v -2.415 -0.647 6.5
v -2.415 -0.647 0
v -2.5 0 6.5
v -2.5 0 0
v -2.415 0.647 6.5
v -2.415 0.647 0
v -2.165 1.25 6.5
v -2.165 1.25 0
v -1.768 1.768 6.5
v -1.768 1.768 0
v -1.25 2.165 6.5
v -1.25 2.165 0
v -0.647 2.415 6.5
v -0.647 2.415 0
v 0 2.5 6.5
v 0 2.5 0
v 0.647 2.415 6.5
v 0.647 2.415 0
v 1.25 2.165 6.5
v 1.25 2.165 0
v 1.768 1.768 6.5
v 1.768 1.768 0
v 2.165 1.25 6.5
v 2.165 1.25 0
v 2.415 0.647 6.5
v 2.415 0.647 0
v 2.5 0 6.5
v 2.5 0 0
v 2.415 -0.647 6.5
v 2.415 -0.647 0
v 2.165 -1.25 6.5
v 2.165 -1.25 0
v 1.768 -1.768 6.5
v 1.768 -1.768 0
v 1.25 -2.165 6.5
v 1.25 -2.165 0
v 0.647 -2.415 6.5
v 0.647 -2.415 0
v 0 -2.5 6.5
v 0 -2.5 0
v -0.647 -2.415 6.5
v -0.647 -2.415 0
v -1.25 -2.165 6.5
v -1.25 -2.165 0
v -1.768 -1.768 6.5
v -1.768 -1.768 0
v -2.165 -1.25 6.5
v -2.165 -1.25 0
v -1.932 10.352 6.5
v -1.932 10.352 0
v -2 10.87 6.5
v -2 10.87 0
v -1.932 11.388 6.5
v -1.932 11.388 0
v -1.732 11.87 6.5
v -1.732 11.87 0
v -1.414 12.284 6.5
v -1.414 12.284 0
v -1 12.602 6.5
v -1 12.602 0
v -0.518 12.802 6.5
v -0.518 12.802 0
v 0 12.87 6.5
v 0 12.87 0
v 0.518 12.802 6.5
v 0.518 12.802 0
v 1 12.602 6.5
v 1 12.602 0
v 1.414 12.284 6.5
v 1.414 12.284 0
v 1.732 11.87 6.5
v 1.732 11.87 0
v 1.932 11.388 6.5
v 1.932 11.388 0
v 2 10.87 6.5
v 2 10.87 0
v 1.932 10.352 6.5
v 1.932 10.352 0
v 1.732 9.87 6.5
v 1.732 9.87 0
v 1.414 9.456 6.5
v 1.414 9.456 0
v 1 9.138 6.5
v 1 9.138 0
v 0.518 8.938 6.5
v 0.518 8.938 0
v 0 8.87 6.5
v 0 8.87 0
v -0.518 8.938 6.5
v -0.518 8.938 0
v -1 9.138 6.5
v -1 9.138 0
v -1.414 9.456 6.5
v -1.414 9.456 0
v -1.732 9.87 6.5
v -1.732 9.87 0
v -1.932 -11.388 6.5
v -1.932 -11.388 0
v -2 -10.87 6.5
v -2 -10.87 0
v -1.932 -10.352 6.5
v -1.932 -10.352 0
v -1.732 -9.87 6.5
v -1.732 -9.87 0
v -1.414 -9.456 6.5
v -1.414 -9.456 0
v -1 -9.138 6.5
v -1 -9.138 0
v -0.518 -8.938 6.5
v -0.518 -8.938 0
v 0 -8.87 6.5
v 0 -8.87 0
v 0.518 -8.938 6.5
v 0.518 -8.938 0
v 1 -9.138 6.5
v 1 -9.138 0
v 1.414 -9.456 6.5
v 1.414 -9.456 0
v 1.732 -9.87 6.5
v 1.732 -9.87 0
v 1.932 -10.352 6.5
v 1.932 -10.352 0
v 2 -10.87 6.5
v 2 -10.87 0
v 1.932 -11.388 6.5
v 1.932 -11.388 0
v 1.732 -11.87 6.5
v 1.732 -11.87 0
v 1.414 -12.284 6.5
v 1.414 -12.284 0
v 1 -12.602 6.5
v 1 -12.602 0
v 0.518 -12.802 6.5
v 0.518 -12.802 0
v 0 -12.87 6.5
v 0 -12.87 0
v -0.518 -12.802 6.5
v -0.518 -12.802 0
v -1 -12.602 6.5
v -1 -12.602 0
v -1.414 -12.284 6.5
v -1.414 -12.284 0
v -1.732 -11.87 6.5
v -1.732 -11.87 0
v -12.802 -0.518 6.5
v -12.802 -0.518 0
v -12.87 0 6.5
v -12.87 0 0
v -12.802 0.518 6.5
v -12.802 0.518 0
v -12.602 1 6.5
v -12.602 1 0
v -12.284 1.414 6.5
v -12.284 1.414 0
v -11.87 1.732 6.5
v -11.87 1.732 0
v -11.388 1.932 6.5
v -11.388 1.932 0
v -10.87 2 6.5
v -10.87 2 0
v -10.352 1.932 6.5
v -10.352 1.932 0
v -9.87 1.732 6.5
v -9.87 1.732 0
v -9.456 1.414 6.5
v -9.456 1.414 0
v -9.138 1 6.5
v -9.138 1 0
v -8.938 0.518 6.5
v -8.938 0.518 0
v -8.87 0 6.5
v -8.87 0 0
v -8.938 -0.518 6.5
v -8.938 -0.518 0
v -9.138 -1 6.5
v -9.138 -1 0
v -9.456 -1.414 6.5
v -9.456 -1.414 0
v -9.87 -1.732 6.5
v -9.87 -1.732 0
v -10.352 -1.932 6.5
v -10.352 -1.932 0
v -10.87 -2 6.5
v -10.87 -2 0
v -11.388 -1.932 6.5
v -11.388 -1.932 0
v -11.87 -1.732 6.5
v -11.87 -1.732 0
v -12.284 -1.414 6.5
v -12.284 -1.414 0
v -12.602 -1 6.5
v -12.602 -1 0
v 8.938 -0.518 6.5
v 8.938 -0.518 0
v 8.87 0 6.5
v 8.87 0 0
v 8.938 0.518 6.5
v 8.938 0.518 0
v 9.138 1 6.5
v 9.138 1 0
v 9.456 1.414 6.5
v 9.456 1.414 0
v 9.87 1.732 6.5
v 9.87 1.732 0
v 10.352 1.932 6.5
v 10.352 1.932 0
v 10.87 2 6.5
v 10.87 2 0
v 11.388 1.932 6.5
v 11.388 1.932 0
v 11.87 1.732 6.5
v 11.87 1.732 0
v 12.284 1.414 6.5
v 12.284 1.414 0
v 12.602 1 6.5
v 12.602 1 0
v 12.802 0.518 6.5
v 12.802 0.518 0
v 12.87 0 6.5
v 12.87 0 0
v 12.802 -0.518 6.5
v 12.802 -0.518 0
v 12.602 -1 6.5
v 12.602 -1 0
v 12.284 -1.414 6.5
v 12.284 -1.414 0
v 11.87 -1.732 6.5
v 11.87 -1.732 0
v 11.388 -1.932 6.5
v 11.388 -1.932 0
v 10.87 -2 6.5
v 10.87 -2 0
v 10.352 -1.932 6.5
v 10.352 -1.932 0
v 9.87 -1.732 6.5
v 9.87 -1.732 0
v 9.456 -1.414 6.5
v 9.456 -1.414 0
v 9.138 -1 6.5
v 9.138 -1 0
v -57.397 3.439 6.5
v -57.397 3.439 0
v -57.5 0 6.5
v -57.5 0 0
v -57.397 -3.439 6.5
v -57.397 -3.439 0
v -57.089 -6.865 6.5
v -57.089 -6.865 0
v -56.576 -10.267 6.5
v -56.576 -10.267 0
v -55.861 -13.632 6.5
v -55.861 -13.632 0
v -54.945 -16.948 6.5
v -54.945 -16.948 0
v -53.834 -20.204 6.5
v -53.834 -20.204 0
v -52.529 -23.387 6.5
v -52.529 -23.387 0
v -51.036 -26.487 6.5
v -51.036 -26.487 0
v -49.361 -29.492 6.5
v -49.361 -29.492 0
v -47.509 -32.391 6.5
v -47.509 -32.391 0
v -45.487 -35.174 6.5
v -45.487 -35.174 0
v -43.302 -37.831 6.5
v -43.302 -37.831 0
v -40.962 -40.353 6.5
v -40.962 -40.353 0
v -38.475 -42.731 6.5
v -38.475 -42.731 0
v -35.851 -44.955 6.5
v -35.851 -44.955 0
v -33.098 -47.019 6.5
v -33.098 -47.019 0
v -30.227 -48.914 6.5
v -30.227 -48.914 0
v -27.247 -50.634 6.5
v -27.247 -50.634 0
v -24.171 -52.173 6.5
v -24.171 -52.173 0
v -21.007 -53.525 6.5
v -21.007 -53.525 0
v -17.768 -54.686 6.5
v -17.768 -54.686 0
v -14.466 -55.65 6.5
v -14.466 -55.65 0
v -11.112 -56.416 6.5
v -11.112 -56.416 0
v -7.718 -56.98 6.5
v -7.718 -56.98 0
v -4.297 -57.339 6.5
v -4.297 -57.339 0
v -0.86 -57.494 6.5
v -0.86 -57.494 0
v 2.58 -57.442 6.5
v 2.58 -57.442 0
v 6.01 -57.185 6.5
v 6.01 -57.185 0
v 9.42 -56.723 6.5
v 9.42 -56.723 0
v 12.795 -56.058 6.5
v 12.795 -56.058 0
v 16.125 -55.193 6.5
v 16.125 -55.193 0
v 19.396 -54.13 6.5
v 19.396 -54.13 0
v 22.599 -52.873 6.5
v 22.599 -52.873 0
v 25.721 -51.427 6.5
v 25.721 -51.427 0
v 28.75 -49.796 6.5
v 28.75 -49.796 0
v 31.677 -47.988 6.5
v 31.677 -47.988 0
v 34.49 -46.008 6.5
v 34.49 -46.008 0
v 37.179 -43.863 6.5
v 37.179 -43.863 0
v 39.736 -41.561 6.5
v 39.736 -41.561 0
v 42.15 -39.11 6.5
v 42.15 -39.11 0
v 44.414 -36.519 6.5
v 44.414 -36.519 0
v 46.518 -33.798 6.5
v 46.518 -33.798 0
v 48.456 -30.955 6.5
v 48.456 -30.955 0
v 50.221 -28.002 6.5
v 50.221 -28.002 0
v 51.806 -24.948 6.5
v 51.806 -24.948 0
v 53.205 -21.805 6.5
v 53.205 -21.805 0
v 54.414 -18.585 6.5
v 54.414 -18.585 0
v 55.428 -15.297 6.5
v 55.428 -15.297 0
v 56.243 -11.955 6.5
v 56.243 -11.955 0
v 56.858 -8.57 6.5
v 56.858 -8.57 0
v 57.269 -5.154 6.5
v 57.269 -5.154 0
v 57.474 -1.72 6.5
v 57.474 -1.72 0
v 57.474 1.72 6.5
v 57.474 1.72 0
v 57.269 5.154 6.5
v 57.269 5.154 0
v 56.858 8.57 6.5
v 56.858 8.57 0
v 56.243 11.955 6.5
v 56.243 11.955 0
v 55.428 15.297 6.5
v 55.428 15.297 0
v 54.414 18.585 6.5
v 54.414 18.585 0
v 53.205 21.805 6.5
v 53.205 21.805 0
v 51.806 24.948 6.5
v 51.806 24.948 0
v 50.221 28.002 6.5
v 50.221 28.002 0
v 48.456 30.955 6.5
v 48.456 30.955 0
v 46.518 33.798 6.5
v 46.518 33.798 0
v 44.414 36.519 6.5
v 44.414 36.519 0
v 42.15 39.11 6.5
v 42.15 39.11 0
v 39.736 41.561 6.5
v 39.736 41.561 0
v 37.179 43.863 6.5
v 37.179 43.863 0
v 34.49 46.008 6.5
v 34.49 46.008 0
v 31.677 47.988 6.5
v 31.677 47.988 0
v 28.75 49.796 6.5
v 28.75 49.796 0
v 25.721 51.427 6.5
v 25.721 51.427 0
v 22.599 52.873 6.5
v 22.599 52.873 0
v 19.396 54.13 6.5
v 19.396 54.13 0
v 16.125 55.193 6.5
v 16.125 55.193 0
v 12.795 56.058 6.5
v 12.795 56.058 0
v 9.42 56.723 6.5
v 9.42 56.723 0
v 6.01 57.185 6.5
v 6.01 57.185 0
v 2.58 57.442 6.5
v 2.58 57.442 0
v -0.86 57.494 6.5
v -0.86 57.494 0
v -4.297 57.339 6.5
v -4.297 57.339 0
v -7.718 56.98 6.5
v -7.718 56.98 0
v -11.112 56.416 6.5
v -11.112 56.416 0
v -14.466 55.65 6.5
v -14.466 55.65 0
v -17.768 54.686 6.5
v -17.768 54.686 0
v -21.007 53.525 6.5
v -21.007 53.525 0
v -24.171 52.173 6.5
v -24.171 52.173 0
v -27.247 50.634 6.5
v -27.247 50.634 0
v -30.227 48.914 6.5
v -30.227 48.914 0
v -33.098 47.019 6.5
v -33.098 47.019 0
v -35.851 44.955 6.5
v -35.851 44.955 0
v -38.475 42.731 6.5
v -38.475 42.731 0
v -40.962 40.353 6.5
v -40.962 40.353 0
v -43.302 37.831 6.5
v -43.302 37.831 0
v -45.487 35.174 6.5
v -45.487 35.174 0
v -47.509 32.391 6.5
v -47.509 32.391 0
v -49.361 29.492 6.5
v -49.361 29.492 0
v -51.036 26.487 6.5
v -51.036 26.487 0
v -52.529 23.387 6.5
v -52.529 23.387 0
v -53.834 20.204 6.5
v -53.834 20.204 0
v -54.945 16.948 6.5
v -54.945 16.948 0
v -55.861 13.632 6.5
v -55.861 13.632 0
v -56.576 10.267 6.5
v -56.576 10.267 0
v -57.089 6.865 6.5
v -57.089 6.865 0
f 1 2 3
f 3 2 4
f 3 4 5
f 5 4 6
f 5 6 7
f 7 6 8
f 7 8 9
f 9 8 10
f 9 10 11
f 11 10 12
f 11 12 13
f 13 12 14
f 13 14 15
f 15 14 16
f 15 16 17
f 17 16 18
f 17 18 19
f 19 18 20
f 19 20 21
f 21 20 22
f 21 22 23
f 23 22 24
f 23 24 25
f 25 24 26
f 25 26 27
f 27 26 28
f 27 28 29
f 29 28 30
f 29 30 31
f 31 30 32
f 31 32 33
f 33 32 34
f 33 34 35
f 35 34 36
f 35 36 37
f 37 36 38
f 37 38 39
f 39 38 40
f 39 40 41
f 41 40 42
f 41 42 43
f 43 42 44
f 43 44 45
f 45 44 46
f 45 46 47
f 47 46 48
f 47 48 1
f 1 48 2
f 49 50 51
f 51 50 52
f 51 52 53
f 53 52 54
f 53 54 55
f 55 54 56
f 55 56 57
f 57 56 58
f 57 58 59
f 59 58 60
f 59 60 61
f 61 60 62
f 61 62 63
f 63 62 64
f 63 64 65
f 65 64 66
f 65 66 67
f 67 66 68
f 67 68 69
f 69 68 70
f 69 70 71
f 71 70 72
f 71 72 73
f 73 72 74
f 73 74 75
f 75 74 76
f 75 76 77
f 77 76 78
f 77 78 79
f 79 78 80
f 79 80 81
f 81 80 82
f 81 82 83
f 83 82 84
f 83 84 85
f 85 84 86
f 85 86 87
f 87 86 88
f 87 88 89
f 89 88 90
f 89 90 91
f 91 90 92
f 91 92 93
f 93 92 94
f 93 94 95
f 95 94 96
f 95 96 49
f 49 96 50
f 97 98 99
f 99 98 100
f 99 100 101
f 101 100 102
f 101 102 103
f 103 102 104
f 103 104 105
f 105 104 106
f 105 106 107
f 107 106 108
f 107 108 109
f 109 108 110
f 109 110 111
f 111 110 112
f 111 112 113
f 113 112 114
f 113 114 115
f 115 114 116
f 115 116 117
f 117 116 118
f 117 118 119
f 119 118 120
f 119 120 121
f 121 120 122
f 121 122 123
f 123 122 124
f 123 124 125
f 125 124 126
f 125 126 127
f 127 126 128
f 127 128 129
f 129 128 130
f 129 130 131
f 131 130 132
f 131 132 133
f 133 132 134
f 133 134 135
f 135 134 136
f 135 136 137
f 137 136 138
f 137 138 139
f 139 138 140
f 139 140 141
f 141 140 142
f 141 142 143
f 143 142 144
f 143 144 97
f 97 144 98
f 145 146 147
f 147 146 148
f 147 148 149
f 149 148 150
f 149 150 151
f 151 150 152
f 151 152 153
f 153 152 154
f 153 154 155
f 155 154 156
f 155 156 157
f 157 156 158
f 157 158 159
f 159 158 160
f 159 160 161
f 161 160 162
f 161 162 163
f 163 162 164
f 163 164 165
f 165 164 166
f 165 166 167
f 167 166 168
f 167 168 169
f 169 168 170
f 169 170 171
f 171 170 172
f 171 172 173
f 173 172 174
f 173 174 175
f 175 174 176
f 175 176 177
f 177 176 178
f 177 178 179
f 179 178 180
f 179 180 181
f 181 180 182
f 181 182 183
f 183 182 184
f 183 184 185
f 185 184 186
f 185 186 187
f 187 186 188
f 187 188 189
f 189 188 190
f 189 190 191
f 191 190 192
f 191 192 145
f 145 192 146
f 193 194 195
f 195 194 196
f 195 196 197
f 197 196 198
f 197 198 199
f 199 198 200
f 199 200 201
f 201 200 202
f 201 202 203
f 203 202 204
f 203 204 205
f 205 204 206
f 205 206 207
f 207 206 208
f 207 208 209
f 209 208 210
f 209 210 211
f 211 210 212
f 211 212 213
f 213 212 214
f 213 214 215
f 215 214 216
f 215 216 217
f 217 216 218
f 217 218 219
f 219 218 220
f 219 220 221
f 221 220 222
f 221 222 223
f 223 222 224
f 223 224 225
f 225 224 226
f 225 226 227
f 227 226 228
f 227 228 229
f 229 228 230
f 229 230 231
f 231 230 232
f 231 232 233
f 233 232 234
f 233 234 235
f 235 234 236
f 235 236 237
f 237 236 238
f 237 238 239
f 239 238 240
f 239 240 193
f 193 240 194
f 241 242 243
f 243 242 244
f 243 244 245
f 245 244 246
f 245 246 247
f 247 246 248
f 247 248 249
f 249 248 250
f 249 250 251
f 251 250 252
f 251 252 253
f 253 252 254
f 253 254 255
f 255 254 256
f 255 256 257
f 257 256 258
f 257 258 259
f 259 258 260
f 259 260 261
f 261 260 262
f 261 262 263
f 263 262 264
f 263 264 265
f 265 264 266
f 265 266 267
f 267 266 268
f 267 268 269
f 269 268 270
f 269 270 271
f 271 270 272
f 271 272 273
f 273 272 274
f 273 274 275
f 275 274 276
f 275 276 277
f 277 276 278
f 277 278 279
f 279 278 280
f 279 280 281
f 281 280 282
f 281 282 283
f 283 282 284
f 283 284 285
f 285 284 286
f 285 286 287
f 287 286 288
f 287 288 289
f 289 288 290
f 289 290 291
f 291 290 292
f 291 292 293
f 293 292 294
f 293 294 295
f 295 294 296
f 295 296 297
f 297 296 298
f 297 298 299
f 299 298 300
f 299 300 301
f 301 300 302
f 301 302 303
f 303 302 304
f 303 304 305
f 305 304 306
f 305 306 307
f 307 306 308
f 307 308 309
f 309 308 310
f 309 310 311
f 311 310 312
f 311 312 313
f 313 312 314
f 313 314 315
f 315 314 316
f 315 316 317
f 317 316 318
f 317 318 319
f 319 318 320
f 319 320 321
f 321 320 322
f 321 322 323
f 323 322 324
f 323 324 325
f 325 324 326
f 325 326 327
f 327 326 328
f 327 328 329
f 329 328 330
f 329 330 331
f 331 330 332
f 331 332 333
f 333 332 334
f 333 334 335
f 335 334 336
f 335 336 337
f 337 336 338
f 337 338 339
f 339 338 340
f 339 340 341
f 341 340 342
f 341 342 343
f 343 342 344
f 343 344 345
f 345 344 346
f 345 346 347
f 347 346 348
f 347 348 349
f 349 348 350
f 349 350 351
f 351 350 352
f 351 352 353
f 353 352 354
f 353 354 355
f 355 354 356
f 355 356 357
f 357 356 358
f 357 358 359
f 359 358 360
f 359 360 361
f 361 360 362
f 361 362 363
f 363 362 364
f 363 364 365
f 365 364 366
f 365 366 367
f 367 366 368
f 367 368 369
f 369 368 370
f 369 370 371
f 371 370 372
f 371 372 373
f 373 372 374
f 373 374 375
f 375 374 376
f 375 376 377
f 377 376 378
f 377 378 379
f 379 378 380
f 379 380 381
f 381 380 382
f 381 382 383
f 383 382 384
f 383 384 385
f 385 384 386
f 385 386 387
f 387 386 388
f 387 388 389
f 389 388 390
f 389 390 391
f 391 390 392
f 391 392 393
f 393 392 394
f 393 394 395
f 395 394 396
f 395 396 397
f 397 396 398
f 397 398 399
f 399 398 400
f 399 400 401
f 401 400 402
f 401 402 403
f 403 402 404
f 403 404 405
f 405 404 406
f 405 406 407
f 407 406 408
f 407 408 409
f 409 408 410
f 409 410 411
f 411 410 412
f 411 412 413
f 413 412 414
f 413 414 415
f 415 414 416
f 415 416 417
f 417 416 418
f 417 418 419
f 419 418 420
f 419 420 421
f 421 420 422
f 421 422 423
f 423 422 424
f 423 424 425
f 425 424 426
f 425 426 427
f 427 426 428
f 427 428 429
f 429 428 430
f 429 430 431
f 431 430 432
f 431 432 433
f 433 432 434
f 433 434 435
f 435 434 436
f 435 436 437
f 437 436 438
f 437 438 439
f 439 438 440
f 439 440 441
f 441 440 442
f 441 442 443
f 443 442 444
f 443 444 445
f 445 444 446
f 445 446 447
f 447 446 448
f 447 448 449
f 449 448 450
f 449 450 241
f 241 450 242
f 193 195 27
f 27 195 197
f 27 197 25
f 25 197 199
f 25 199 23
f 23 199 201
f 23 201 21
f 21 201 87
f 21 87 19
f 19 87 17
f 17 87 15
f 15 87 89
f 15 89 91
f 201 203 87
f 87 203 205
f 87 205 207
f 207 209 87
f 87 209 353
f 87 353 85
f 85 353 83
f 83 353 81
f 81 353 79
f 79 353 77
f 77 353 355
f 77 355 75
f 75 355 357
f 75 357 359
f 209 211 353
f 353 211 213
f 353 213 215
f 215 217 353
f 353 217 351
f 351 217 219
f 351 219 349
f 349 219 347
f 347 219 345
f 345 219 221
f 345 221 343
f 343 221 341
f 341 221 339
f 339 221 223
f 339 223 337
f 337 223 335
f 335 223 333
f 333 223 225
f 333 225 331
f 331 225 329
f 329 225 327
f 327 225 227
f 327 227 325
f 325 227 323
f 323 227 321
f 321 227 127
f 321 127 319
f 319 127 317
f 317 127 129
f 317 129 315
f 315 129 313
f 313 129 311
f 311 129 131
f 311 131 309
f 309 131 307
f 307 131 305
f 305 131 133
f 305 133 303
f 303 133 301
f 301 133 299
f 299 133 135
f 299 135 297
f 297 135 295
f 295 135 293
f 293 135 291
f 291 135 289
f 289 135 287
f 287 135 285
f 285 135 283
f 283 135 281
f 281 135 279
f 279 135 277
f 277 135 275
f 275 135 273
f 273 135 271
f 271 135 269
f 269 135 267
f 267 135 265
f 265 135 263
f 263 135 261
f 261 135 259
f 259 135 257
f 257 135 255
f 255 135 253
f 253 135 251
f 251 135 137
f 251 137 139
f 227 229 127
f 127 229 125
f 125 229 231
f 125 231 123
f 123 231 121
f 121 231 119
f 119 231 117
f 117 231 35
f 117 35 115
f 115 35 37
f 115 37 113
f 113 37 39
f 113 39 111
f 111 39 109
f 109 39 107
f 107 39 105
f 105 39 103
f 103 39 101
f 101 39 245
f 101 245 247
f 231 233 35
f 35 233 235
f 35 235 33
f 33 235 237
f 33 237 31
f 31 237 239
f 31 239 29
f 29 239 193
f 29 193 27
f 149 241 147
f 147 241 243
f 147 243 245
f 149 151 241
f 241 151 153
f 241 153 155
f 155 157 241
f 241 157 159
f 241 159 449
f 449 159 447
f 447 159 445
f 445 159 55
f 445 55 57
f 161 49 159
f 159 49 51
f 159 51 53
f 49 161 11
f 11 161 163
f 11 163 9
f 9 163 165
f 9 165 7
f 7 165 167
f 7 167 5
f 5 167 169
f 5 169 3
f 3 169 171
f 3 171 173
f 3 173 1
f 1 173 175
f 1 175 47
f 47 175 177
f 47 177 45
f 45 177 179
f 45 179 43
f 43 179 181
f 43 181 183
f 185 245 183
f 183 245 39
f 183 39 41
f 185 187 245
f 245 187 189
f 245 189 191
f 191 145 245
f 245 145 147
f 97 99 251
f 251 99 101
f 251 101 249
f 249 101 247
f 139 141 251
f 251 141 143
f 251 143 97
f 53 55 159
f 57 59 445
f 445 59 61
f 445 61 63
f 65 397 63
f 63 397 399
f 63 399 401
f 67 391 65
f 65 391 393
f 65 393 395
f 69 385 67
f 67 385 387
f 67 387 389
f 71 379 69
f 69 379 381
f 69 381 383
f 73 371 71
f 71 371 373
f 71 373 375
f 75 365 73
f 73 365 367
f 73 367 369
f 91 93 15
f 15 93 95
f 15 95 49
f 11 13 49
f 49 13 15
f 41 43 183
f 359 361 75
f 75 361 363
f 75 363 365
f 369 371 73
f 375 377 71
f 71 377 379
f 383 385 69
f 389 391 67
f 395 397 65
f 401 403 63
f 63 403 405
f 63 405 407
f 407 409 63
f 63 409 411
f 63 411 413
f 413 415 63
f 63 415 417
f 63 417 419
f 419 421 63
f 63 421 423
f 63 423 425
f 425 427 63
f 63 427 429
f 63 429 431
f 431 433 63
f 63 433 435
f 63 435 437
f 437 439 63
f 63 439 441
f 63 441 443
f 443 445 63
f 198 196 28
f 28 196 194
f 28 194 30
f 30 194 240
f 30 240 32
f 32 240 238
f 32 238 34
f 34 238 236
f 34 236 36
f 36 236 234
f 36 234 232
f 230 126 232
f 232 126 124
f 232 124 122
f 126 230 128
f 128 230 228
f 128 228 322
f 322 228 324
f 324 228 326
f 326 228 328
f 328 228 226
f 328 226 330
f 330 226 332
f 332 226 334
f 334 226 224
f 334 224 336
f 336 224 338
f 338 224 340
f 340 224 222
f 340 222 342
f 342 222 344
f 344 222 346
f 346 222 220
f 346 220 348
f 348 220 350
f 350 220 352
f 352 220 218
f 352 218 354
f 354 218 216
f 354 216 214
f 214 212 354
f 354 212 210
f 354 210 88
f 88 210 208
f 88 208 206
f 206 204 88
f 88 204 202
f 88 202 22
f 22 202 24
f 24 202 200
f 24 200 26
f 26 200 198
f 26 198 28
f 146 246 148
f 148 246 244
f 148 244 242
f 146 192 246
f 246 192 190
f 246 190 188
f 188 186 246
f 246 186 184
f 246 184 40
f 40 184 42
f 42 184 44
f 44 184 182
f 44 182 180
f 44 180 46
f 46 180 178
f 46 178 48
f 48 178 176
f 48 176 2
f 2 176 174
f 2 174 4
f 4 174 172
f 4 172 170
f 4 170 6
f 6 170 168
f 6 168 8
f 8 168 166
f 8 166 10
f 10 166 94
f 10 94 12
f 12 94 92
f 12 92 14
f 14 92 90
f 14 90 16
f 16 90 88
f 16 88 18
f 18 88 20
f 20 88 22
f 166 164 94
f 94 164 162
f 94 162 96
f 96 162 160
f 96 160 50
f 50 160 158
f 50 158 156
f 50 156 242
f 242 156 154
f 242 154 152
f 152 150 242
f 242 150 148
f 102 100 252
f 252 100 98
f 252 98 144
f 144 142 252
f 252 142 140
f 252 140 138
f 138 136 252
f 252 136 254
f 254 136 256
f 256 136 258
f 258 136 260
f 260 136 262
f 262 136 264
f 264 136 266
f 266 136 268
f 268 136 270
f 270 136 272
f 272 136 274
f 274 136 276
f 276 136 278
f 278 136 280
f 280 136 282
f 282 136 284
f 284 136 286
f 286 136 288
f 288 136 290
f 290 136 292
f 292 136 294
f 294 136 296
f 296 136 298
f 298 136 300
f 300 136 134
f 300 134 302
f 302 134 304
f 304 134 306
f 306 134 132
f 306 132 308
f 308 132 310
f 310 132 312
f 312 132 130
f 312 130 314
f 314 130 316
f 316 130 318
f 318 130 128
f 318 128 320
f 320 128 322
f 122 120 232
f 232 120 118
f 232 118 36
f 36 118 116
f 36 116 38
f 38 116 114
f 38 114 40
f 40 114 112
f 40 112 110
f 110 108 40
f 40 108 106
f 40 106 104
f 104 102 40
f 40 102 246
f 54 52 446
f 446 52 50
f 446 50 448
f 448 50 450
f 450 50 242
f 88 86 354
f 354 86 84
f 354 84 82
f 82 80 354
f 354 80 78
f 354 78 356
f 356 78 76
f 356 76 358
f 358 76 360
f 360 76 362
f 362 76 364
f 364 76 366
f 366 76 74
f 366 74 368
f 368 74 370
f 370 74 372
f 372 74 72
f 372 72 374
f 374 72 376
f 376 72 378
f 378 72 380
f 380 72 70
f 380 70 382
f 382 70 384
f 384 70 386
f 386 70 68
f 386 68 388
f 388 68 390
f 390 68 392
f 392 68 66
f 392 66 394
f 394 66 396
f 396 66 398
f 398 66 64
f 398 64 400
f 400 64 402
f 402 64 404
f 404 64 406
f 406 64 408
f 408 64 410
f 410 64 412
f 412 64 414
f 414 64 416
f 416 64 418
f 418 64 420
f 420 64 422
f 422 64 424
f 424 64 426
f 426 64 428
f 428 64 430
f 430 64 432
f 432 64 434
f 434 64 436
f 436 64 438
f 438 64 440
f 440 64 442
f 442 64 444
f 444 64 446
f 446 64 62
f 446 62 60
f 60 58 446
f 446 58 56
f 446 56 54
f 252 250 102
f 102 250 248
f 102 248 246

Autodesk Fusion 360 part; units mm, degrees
sketch "Sketch1" plane through (0, 0, 0) normal (0, 0, 1) x (1, 0, 0)
  circle A0 centre (0, 0) radius 57.5
  circle A1 centre (0, 0) radius 2.5
  line L0 (0, 0) -> (0, 10.87) construction
  circle A2 centre (0, 10.87) radius 2
  circle A3 centre (-10.87, 0) radius 2
  circle A4 centre (0, -10.87) radius 2
  circle A5 centre (10.87, 0) radius 2
  dimension "d1" = 115
  dimension "d2" = 5
  dimension "d3" = 10.87
  dimension "d4" = 4
  dimension "d6" = 360
extrude "Extrude1" add sketch "Sketch1" along normal blind 6.5
